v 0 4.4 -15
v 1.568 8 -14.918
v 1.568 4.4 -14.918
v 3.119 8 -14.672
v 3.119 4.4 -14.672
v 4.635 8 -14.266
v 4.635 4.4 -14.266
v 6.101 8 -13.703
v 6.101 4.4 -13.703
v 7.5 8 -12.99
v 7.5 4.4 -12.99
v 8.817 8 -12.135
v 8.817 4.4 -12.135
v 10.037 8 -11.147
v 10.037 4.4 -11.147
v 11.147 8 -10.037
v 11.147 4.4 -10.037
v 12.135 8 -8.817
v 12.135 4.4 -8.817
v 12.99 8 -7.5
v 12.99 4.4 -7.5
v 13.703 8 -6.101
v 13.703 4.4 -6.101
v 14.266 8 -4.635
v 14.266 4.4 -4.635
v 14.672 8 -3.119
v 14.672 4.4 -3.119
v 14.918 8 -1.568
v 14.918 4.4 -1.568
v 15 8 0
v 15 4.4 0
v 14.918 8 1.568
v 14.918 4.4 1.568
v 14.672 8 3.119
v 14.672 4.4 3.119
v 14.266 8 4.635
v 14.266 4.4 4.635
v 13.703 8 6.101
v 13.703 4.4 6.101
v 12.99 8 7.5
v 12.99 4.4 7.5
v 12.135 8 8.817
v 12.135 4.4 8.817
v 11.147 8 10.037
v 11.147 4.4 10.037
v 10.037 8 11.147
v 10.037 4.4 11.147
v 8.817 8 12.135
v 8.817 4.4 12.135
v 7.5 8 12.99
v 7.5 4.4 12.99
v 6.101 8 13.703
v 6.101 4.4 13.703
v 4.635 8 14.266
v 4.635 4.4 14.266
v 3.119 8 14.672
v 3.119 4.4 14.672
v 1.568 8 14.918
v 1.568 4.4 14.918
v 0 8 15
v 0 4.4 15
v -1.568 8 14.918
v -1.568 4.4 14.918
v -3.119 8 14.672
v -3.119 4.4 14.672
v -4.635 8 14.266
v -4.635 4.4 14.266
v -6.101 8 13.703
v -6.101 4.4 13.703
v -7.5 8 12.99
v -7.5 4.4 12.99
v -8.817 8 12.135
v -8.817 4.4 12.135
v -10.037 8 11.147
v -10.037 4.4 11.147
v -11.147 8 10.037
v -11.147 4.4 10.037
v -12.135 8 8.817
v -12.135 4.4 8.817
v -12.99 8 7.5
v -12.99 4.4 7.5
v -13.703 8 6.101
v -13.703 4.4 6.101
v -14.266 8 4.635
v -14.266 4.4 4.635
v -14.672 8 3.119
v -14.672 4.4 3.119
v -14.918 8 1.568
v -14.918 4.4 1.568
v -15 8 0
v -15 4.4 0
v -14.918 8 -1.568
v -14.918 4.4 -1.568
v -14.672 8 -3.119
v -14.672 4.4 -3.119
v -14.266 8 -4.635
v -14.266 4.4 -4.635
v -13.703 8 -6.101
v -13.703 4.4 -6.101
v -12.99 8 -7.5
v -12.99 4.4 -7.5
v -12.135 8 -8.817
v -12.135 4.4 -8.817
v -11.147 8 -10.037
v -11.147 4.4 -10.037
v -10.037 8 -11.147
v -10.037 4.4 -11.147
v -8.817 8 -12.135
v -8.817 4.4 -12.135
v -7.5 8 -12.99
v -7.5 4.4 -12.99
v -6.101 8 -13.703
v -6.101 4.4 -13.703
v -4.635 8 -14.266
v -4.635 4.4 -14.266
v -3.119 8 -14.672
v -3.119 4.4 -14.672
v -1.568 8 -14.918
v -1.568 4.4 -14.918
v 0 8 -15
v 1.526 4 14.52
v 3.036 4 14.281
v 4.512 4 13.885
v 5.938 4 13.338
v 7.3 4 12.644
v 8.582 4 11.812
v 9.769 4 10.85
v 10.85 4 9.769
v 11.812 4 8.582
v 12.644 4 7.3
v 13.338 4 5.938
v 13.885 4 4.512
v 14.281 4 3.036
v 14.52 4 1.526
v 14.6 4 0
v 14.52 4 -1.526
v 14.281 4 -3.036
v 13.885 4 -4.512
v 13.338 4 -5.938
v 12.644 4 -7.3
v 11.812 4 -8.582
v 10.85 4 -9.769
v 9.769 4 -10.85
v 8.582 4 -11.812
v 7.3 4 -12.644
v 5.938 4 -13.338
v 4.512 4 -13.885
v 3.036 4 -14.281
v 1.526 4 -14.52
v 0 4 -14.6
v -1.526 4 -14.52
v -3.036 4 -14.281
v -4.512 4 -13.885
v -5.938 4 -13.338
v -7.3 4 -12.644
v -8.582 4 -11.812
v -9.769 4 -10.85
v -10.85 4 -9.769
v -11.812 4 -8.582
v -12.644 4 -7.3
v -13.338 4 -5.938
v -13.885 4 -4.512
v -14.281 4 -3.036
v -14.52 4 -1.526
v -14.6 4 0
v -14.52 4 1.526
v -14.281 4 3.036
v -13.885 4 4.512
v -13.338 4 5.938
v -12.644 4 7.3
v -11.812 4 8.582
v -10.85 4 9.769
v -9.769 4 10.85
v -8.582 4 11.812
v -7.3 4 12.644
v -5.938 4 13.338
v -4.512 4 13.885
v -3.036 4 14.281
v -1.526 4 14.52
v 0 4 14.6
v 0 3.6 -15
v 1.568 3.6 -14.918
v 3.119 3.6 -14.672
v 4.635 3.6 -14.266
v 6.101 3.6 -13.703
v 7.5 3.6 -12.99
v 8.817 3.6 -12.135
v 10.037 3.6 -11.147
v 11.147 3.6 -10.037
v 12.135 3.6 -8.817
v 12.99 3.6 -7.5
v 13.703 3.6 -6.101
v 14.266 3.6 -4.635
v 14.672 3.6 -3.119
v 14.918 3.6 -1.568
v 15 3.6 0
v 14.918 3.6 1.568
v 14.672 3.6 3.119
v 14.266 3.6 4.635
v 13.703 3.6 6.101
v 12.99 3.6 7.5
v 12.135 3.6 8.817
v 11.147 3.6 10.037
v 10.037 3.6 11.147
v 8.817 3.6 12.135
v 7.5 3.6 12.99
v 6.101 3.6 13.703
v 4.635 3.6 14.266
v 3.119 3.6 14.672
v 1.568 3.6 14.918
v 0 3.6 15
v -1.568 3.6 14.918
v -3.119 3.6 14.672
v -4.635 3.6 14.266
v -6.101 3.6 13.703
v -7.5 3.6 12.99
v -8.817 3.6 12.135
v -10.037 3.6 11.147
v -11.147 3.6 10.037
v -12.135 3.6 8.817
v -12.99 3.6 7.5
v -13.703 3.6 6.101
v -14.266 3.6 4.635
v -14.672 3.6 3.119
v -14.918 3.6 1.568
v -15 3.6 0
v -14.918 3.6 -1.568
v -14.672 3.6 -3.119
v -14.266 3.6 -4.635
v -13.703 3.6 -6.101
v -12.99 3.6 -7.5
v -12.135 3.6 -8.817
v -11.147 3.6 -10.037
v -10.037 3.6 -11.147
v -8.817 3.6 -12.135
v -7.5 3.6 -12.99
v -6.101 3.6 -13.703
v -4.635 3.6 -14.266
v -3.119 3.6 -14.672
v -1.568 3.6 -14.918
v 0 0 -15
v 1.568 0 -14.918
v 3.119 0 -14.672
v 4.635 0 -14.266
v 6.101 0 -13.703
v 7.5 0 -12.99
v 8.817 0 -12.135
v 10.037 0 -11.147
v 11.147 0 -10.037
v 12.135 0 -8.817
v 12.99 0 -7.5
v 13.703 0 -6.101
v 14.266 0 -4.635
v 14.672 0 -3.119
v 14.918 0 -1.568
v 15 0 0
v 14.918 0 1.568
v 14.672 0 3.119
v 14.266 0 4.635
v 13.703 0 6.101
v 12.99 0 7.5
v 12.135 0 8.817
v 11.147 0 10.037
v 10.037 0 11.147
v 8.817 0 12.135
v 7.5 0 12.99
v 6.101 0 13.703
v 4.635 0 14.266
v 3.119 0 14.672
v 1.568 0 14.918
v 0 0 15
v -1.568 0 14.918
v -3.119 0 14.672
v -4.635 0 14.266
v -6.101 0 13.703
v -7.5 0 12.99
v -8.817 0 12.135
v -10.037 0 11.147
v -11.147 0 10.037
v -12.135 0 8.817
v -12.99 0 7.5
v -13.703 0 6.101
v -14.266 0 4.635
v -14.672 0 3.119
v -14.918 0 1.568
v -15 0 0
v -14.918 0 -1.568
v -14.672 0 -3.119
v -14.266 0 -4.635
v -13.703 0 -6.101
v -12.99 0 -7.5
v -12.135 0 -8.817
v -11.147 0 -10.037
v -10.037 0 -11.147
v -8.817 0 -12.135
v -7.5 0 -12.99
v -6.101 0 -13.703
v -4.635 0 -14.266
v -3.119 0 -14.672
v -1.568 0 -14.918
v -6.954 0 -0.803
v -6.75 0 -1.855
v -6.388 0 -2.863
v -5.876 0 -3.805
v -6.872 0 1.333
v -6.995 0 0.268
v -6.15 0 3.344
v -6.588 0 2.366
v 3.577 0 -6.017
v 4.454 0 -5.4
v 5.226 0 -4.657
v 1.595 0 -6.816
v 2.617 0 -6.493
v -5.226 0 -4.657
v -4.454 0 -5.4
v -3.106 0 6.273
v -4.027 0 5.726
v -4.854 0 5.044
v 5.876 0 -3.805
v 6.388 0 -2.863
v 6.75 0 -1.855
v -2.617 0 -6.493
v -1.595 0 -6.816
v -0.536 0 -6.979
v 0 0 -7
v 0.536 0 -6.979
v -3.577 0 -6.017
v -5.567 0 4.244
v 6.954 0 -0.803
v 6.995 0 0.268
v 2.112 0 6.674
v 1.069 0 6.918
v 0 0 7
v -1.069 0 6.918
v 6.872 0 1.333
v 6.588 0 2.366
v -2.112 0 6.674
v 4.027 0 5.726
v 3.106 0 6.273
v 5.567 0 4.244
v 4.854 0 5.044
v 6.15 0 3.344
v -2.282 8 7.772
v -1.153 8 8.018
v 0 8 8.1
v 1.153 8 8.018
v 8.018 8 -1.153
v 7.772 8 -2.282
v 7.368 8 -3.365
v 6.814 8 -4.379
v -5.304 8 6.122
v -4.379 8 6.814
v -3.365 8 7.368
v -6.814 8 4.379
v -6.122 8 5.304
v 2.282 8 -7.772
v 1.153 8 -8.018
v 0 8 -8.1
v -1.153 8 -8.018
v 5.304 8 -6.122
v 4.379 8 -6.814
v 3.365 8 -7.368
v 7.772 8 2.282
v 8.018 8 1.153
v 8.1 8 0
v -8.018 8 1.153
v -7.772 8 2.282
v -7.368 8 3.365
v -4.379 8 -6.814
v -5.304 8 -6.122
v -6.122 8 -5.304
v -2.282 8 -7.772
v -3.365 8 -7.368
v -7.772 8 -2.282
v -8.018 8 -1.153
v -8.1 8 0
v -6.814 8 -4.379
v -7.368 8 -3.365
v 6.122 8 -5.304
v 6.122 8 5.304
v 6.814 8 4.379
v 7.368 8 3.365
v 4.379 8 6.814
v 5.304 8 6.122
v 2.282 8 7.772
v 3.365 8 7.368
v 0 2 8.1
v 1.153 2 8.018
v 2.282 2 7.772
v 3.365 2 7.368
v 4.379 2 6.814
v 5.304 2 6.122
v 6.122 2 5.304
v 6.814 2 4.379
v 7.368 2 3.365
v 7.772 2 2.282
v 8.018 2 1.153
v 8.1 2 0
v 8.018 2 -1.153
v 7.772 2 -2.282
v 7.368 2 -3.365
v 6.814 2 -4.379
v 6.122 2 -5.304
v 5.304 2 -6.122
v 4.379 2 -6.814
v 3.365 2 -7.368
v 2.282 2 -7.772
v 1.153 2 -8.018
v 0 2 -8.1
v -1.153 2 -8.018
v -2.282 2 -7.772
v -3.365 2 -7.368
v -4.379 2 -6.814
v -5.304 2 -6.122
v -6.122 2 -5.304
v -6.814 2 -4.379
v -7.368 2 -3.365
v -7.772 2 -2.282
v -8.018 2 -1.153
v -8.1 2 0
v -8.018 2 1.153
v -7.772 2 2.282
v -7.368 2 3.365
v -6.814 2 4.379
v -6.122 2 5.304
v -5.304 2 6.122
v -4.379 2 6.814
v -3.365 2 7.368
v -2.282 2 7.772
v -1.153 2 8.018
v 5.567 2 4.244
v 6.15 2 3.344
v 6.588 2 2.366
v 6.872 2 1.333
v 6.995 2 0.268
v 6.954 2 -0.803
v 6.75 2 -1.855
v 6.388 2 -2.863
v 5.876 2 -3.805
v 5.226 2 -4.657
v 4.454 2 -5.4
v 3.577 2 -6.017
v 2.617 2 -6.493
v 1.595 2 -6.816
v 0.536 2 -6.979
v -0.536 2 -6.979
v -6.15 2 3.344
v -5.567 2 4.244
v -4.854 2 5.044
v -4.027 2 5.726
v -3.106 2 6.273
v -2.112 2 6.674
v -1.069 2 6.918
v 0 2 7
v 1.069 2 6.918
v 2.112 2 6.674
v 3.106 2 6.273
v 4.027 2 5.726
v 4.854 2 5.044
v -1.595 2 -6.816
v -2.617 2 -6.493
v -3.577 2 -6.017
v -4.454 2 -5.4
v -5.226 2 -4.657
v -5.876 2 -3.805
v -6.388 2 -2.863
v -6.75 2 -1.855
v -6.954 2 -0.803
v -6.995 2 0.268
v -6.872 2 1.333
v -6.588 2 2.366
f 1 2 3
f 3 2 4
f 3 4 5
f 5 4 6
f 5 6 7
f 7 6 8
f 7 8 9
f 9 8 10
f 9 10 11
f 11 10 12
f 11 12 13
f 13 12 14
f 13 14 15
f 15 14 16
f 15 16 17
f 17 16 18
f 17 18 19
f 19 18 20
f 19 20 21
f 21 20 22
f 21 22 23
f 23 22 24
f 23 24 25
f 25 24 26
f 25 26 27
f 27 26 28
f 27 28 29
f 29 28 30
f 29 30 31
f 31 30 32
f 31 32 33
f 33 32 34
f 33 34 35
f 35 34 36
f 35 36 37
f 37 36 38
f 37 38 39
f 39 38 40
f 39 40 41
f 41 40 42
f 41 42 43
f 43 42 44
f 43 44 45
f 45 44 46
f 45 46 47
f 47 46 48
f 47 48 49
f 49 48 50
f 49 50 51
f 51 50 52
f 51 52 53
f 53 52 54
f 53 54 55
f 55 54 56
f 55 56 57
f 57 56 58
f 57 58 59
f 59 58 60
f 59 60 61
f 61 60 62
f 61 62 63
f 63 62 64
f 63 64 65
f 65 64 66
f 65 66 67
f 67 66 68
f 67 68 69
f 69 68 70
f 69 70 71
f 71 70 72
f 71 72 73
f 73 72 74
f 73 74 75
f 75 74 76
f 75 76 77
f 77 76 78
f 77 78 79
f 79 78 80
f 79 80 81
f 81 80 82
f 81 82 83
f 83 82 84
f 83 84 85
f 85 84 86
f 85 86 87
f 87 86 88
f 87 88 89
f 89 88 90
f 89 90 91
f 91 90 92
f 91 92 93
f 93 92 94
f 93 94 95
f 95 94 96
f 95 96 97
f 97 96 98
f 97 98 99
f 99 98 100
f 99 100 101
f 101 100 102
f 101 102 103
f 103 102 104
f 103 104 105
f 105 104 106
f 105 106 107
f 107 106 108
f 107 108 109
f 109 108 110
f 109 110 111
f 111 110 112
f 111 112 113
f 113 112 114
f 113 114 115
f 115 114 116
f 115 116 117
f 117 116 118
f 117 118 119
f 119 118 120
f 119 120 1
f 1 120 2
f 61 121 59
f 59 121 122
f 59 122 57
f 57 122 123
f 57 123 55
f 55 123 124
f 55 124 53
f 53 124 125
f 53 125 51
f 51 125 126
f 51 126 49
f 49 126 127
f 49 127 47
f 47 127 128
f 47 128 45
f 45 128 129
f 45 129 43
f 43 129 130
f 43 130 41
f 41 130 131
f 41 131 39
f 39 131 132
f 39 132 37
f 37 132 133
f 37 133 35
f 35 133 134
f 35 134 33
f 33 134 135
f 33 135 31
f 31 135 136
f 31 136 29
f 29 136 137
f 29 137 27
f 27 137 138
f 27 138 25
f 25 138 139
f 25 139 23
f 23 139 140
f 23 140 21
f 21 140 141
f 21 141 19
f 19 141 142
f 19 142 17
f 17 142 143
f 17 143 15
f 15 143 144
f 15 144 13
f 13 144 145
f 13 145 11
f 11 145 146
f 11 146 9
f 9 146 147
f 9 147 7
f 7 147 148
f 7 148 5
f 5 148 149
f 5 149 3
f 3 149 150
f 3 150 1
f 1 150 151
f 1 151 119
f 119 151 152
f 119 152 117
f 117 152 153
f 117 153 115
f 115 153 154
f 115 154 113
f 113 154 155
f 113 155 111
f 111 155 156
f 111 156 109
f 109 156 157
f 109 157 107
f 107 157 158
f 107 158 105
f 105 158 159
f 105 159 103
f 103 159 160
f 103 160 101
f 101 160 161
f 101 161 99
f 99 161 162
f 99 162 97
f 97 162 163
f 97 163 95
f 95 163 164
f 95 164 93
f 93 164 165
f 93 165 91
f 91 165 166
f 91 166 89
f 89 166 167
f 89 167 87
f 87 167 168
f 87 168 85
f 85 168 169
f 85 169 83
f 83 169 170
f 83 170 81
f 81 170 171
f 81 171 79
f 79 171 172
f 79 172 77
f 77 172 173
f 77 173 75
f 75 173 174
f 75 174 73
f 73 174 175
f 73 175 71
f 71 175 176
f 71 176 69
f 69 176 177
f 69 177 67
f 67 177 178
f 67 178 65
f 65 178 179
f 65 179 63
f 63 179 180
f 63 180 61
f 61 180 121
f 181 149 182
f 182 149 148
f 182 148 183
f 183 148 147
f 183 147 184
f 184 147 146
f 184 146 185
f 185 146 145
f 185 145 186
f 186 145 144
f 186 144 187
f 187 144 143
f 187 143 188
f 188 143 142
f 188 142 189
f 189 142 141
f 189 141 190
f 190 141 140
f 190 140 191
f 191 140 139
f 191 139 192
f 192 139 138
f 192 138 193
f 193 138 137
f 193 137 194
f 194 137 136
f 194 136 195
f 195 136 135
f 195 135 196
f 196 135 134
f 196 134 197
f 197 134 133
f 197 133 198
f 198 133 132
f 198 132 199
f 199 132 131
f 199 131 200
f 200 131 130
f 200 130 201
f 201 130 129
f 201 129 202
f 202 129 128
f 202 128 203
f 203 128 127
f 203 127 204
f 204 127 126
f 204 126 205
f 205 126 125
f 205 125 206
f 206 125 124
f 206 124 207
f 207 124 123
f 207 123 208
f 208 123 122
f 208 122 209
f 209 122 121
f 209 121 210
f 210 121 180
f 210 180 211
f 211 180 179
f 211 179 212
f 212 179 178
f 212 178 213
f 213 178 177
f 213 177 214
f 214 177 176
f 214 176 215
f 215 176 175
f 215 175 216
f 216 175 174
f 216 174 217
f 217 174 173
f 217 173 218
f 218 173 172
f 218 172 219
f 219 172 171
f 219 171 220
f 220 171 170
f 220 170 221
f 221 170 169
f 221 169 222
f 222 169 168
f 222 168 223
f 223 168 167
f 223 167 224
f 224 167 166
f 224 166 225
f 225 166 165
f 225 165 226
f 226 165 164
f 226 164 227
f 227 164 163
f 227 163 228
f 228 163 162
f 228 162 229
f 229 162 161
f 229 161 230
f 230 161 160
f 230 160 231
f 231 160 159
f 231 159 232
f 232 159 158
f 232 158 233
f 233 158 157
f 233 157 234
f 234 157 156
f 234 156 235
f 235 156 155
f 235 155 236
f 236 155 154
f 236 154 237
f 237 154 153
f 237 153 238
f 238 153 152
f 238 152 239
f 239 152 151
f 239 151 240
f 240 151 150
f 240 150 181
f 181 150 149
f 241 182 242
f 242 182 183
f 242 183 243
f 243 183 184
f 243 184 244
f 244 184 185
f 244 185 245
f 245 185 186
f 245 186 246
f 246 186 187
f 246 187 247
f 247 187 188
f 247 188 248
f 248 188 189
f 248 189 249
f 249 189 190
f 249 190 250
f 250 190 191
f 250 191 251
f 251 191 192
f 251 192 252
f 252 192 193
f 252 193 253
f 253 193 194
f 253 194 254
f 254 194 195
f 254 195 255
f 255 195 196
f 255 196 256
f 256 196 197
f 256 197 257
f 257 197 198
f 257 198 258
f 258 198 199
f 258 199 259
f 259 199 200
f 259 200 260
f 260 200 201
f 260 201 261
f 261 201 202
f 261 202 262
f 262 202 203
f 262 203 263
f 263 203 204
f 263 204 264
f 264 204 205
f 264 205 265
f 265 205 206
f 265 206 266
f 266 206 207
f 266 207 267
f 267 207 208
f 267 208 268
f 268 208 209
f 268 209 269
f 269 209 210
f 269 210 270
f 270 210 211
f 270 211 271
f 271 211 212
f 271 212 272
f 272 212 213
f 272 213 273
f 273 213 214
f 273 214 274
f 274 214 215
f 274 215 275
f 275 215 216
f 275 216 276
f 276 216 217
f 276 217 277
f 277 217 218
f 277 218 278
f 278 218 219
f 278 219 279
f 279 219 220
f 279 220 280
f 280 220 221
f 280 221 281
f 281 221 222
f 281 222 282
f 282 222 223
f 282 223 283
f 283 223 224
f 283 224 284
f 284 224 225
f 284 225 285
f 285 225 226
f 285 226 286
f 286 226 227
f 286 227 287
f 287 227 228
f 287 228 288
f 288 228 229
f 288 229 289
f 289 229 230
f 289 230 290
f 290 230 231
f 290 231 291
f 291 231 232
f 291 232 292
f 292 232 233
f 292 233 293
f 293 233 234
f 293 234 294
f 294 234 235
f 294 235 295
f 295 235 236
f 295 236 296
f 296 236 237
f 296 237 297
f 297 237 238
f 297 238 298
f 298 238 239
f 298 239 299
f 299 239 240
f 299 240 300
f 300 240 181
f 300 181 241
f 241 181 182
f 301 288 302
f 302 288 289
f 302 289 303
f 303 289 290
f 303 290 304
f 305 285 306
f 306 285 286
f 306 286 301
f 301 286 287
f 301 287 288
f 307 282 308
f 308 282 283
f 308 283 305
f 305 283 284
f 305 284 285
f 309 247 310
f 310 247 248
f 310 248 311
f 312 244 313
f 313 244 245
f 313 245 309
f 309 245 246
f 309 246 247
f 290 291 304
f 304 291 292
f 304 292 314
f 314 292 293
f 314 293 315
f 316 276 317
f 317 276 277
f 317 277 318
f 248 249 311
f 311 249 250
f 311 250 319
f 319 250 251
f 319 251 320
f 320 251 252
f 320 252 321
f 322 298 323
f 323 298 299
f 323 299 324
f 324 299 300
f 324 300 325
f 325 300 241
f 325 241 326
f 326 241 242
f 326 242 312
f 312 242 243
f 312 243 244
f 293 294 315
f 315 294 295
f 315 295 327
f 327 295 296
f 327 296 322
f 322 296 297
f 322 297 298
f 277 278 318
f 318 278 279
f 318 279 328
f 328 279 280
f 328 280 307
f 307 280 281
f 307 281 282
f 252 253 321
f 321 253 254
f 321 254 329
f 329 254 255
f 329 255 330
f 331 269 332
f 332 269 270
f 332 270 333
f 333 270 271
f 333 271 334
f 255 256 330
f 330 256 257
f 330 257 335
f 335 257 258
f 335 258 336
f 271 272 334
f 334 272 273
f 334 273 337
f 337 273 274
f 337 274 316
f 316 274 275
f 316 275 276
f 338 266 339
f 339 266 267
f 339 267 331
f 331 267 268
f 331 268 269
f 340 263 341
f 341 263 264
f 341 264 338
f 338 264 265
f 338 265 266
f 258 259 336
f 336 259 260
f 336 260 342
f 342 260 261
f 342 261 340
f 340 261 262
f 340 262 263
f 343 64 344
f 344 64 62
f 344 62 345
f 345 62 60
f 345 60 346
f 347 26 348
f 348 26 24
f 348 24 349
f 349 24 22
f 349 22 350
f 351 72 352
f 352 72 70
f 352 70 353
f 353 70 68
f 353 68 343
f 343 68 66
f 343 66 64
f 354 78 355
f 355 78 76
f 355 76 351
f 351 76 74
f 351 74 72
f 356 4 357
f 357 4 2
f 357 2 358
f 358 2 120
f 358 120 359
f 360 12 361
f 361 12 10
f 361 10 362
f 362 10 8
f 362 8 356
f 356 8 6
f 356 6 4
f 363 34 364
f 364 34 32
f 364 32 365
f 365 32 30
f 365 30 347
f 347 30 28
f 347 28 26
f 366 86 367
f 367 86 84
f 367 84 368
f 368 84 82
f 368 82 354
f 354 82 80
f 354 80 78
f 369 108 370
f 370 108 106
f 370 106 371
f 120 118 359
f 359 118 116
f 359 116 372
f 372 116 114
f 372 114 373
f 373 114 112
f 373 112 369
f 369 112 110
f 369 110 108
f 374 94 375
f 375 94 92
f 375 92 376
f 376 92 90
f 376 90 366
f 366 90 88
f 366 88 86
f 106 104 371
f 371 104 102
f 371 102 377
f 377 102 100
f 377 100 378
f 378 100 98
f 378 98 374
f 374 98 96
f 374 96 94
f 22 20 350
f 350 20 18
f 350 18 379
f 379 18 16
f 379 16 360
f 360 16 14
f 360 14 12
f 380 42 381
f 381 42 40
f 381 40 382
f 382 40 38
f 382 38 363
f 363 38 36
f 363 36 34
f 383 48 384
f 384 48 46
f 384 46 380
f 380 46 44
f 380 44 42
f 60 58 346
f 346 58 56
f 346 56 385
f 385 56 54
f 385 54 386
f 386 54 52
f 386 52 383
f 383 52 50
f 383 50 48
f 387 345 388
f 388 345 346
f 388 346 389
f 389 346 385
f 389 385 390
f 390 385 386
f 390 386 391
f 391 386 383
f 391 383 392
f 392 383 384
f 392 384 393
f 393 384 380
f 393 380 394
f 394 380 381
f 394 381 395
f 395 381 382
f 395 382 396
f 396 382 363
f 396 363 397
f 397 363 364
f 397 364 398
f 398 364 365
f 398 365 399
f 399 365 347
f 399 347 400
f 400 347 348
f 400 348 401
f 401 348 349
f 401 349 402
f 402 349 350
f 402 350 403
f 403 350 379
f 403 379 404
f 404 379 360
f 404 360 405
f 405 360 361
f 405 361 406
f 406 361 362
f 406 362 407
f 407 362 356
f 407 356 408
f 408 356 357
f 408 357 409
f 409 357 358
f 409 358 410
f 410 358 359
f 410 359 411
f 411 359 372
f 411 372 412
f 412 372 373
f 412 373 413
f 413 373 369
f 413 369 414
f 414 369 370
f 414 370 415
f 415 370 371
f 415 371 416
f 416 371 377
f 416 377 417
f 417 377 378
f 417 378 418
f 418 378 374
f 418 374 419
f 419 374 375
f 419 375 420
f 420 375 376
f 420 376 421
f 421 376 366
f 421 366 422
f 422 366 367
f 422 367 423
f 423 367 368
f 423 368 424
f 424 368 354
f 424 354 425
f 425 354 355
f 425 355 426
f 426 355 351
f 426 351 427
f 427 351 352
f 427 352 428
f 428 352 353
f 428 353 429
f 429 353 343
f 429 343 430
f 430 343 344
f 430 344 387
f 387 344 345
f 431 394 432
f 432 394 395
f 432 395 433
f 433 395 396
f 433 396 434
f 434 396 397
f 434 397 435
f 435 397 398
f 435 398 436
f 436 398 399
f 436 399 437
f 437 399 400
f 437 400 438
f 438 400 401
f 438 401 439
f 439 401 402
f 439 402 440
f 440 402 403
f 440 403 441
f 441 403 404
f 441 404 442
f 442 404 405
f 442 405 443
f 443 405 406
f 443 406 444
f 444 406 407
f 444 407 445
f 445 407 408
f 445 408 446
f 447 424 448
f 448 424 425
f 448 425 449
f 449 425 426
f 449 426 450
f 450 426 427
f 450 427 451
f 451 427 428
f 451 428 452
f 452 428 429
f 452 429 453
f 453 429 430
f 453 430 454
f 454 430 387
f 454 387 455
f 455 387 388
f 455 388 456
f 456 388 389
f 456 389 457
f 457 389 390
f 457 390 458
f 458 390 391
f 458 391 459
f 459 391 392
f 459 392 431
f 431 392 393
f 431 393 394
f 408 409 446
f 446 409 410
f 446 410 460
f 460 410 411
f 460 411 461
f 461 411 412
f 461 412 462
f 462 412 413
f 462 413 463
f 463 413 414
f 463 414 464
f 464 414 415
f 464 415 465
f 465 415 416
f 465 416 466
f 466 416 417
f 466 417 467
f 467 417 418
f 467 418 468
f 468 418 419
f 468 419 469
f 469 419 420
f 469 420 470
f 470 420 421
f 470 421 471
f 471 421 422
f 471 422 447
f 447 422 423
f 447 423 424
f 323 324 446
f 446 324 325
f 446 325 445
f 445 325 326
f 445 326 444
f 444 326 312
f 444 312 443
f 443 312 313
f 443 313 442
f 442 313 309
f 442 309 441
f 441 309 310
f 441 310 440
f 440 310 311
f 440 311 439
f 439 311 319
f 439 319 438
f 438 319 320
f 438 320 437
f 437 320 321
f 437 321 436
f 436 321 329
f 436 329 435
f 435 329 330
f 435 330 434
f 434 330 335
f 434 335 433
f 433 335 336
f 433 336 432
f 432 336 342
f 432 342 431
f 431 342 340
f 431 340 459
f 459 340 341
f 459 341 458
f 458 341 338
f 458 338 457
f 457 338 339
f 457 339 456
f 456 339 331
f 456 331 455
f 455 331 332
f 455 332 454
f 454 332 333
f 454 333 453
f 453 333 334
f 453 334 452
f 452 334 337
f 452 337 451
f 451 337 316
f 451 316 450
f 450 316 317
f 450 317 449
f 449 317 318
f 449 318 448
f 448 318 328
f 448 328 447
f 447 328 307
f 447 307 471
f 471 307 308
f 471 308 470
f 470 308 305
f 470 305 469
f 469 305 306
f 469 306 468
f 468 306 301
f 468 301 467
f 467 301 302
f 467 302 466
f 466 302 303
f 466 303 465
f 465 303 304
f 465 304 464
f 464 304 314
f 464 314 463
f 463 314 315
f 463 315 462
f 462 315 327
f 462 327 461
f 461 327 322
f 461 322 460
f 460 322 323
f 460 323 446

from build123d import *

# Parameters (mm, degrees)
SKETCH2_R          = 8.1
CUT_EXTRUDE1_DEPTH = 6
SKETCH3_R          = 7
CUT_EXTRUDE2_DEPTH = 6


with BuildPart() as part:
    # Sketch1 → Revolve1 (revolve)
    with BuildSketch(Plane.XY, mode=Mode.PRIVATE) as revolve1_sk:
        Polygon((2.5, 8), (15, 8), (15, 4.4), (14.6, 4), (15, 3.6), (15, 0), (2.5, 0), align=None)
    revolve(revolve1_sk.sketch.rotate(Axis((0, 0, 0), (0, 1, 0)), 90), axis=Axis((0, 0, 0), (0, 1, 0)))

    # Sketch2 → Cut-Extrude1 (cut)
    with BuildSketch(Plane(origin=(0, 8, 0), x_dir=(1, 0, 0), z_dir=(0, 1, 0))):
        with Locations(Location((0, 0, 0), (0, 0, 270))):
            Circle(SKETCH2_R)
    extrude(amount=-CUT_EXTRUDE1_DEPTH, mode=Mode.SUBTRACT)

    # Sketch3 → Cut-Extrude2 (cut)
    with BuildSketch(Plane(origin=(0, 2, 0), x_dir=(1, 0, 0), z_dir=(0, 1, 0))):
        with Locations(Location((0, 0, 0), (0, 0, 270))):
            Circle(SKETCH3_R)
    extrude(amount=-CUT_EXTRUDE2_DEPTH, mode=Mode.SUBTRACT)


solid = part.part
